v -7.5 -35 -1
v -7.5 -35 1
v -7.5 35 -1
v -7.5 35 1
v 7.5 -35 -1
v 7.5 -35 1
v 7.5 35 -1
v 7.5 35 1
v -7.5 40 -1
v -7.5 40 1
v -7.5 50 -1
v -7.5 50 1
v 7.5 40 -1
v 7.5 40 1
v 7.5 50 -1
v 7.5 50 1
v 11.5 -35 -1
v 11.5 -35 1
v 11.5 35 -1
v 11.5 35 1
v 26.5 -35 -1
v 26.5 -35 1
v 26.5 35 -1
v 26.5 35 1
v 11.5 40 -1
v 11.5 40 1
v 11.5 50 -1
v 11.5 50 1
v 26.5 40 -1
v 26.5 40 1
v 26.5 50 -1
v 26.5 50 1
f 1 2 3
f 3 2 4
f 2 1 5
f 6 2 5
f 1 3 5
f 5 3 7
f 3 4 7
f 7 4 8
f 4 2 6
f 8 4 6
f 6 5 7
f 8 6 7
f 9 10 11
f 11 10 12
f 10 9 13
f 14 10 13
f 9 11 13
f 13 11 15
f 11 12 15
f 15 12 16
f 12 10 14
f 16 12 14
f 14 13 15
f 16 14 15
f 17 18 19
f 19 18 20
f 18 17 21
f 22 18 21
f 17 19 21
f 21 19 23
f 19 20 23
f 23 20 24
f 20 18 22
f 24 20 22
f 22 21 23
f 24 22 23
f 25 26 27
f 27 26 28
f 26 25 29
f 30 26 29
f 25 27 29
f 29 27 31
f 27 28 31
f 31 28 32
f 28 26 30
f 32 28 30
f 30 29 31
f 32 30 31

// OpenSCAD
// file: shapes.scad
/*
 *  OpenSCAD Shapes Library (www.openscad.at)
 *  Copyright (C) 2009  Catarina Mota <clifford@clifford.at>
 *
 *  This program is free software; you can redistribute it and/or modify
 *  it under the terms of the GNU General Public License as published by
 *  the Free Software Foundation; either version 2 of the License, or
 *  (at your option) any later version.
 *
 *  This program is distributed in the hope that it will be useful,
 *  but WITHOUT ANY WARRANTY; without even the implied warranty of
 *  MERCHANTABILITY or FITNESS FOR A PARTICULAR PURPOSE.  See the
 *  GNU General Public License for more details.
 *
 *  You should have received a copy of the GNU General Public License
 *  along with this program; if not, write to the Free Software
 *  Foundation, Inc., 59 Temple Place, Suite 330, Boston, MA  02111-1307  USA
 *
*/


//box(width, height, depth);
//roundedBox(width, height, depth, factor);
//cone(height, radius);
//oval(width, height, depth);
//tube(height, radius, wall);
//ovalTube(width, height, depth, wall);
//hexagon(height, depth);
//octagon(height, depth);
//dodecagon(height, depth);
//hexagram(height, depth);
//rightTriangle(adjacent, opposite, depth);
//equiTriangle(side, depth);
//12ptStar(height, depth);

//----------------------

//roundedBox(120, 60, 3, 8);

//----------------------

module box(w,h,d) {
	scale ([w,h,d]) cube(1, true);
}

module roundedBox(w,h,d,f){
	difference(){
		box(w,h,d);
		translate([-w/2,h/2,0]) cube(w/(f/2),true);
		translate([w/2,h/2,0]) cube(w/(f/2),true);
		translate([-w/2,-h/2,0]) cube(w/(f/2),true);
		translate([w/2,-h/2,0]) cube(w/(f/2),true);
	}
	translate([-w/2+w/f,h/2-w/f,-d/2]) cylinder(d,w/f, w/f);
	translate([w/2-w/f,h/2-w/f,-d/2]) cylinder(d,w/f, w/f);
	translate([-w/2+w/f,-h/2+w/f,-d/2]) cylinder(d,w/f, w/f);
	translate([w/2-w/f,-h/2+w/f,-d/2]) cylinder(d,w/f, w/f);
}

module cone(height, radius) {
		cylinder(height, radius, 0);
}

module oval(w,h,d) {
	scale ([w/100, h/100, 1]) cylinder(d, 50, 50);
}

module tube(height, radius, wall) {
	difference(){
		cylinder(height, radius, radius);
		cylinder(height, radius-wall, radius-wall);
	}
}

module ovalTube(w,h,d,wall) {
	difference(){
		scale ([w/100, h/100, 1]) cylinder(d, 50, 50);
		scale ([w/100, h/100, 1]) cylinder(d, 50-wall, 50-wall);
	}
}

module hexagon(height, depth) {
	boxWidth=height/1.75;
		union(){
			box(boxWidth, height, depth);
			rotate([0,0,60]) box(boxWidth, height, depth);
			rotate([0,0,-60]) box(boxWidth, height, depth);
		}
}

module octagon(height, depth) {
	intersection(){
		box(height, height, depth);
		rotate([0,0,45]) box(height, height, depth);
	}
}

module dodecagon(height, depth) {
	intersection(){
		hexagon(height, depth);
		rotate([0,0,90]) hexagon(height, depth);
	}
}

module hexagram(height, depth) {
	boxWidth=height/1.75;
	intersection(){
		box(height, boxWidth, depth);
		rotate([0,0,60]) box(height, boxWidth, depth);
	}
	intersection(){
		box(height, boxWidth, depth);
		rotate([0,0,-60]) box(height, boxWidth, depth);
	}
	intersection(){
		rotate([0,0,60]) box(height, boxWidth, depth);
		rotate([0,0,-60]) box(height, boxWidth, depth);
	}
}

module rightTriangle(adjacent, opposite, depth) {
	difference(){
		translate([-adjacent/2,opposite/2,0]) box(adjacent, opposite, depth);
		translate([-adjacent,0,0]){
			rotate([0,0,atan(opposite/adjacent)]) dislocateBox(adjacent*4, opposite, depth);
		}
	}
}

module equiTriangle(side, depth) {
	difference(){
		translate([-side/2,side/2,0]) box(side, side, depth);
		rotate([0,0,30]) dislocateBox(side*2, side, depth);
		translate([-side,0,0]){
			rotate([0,0,60]) dislocateBox(side*2, side, depth);
		}
	}
}

module 12ptStar(height, depth) {
	starNum=3;
	starAngle=360/starNum;
	for (s=[1:starNum]){
		rotate([0, 0, s*starAngle]) box(height, height, depth);
	}
}

//-----------------------
//MOVES THE ROTATION AXIS OF A BOX FROM ITS CENTER TO THE BOTTOM LEFT CORNER
module dislocateBox(w,h,d){
	translate([w/2,h,0]){
		difference(){
			box(w, h*2, d+1);
			translate([-w,0,0]) box(w, h*2, d+1);
		}
	}
}
// main file
include <shapes.scad>  // using Catarina Mota's shapes library

screwsize=4;
length=70;
width=15;
middle=5;
height=2;
triangle_base=20;
triangle_height=10;
triangle_offset=16;
connector_width=6;
connector_height=4;
connector_length = 10;
set();
translate ([width+4,0,0]) set();

module set()
{
//base
box(width, length, height);

translate ([0,length/2+connector_length,0]) box(width, connector_length, height);
}
